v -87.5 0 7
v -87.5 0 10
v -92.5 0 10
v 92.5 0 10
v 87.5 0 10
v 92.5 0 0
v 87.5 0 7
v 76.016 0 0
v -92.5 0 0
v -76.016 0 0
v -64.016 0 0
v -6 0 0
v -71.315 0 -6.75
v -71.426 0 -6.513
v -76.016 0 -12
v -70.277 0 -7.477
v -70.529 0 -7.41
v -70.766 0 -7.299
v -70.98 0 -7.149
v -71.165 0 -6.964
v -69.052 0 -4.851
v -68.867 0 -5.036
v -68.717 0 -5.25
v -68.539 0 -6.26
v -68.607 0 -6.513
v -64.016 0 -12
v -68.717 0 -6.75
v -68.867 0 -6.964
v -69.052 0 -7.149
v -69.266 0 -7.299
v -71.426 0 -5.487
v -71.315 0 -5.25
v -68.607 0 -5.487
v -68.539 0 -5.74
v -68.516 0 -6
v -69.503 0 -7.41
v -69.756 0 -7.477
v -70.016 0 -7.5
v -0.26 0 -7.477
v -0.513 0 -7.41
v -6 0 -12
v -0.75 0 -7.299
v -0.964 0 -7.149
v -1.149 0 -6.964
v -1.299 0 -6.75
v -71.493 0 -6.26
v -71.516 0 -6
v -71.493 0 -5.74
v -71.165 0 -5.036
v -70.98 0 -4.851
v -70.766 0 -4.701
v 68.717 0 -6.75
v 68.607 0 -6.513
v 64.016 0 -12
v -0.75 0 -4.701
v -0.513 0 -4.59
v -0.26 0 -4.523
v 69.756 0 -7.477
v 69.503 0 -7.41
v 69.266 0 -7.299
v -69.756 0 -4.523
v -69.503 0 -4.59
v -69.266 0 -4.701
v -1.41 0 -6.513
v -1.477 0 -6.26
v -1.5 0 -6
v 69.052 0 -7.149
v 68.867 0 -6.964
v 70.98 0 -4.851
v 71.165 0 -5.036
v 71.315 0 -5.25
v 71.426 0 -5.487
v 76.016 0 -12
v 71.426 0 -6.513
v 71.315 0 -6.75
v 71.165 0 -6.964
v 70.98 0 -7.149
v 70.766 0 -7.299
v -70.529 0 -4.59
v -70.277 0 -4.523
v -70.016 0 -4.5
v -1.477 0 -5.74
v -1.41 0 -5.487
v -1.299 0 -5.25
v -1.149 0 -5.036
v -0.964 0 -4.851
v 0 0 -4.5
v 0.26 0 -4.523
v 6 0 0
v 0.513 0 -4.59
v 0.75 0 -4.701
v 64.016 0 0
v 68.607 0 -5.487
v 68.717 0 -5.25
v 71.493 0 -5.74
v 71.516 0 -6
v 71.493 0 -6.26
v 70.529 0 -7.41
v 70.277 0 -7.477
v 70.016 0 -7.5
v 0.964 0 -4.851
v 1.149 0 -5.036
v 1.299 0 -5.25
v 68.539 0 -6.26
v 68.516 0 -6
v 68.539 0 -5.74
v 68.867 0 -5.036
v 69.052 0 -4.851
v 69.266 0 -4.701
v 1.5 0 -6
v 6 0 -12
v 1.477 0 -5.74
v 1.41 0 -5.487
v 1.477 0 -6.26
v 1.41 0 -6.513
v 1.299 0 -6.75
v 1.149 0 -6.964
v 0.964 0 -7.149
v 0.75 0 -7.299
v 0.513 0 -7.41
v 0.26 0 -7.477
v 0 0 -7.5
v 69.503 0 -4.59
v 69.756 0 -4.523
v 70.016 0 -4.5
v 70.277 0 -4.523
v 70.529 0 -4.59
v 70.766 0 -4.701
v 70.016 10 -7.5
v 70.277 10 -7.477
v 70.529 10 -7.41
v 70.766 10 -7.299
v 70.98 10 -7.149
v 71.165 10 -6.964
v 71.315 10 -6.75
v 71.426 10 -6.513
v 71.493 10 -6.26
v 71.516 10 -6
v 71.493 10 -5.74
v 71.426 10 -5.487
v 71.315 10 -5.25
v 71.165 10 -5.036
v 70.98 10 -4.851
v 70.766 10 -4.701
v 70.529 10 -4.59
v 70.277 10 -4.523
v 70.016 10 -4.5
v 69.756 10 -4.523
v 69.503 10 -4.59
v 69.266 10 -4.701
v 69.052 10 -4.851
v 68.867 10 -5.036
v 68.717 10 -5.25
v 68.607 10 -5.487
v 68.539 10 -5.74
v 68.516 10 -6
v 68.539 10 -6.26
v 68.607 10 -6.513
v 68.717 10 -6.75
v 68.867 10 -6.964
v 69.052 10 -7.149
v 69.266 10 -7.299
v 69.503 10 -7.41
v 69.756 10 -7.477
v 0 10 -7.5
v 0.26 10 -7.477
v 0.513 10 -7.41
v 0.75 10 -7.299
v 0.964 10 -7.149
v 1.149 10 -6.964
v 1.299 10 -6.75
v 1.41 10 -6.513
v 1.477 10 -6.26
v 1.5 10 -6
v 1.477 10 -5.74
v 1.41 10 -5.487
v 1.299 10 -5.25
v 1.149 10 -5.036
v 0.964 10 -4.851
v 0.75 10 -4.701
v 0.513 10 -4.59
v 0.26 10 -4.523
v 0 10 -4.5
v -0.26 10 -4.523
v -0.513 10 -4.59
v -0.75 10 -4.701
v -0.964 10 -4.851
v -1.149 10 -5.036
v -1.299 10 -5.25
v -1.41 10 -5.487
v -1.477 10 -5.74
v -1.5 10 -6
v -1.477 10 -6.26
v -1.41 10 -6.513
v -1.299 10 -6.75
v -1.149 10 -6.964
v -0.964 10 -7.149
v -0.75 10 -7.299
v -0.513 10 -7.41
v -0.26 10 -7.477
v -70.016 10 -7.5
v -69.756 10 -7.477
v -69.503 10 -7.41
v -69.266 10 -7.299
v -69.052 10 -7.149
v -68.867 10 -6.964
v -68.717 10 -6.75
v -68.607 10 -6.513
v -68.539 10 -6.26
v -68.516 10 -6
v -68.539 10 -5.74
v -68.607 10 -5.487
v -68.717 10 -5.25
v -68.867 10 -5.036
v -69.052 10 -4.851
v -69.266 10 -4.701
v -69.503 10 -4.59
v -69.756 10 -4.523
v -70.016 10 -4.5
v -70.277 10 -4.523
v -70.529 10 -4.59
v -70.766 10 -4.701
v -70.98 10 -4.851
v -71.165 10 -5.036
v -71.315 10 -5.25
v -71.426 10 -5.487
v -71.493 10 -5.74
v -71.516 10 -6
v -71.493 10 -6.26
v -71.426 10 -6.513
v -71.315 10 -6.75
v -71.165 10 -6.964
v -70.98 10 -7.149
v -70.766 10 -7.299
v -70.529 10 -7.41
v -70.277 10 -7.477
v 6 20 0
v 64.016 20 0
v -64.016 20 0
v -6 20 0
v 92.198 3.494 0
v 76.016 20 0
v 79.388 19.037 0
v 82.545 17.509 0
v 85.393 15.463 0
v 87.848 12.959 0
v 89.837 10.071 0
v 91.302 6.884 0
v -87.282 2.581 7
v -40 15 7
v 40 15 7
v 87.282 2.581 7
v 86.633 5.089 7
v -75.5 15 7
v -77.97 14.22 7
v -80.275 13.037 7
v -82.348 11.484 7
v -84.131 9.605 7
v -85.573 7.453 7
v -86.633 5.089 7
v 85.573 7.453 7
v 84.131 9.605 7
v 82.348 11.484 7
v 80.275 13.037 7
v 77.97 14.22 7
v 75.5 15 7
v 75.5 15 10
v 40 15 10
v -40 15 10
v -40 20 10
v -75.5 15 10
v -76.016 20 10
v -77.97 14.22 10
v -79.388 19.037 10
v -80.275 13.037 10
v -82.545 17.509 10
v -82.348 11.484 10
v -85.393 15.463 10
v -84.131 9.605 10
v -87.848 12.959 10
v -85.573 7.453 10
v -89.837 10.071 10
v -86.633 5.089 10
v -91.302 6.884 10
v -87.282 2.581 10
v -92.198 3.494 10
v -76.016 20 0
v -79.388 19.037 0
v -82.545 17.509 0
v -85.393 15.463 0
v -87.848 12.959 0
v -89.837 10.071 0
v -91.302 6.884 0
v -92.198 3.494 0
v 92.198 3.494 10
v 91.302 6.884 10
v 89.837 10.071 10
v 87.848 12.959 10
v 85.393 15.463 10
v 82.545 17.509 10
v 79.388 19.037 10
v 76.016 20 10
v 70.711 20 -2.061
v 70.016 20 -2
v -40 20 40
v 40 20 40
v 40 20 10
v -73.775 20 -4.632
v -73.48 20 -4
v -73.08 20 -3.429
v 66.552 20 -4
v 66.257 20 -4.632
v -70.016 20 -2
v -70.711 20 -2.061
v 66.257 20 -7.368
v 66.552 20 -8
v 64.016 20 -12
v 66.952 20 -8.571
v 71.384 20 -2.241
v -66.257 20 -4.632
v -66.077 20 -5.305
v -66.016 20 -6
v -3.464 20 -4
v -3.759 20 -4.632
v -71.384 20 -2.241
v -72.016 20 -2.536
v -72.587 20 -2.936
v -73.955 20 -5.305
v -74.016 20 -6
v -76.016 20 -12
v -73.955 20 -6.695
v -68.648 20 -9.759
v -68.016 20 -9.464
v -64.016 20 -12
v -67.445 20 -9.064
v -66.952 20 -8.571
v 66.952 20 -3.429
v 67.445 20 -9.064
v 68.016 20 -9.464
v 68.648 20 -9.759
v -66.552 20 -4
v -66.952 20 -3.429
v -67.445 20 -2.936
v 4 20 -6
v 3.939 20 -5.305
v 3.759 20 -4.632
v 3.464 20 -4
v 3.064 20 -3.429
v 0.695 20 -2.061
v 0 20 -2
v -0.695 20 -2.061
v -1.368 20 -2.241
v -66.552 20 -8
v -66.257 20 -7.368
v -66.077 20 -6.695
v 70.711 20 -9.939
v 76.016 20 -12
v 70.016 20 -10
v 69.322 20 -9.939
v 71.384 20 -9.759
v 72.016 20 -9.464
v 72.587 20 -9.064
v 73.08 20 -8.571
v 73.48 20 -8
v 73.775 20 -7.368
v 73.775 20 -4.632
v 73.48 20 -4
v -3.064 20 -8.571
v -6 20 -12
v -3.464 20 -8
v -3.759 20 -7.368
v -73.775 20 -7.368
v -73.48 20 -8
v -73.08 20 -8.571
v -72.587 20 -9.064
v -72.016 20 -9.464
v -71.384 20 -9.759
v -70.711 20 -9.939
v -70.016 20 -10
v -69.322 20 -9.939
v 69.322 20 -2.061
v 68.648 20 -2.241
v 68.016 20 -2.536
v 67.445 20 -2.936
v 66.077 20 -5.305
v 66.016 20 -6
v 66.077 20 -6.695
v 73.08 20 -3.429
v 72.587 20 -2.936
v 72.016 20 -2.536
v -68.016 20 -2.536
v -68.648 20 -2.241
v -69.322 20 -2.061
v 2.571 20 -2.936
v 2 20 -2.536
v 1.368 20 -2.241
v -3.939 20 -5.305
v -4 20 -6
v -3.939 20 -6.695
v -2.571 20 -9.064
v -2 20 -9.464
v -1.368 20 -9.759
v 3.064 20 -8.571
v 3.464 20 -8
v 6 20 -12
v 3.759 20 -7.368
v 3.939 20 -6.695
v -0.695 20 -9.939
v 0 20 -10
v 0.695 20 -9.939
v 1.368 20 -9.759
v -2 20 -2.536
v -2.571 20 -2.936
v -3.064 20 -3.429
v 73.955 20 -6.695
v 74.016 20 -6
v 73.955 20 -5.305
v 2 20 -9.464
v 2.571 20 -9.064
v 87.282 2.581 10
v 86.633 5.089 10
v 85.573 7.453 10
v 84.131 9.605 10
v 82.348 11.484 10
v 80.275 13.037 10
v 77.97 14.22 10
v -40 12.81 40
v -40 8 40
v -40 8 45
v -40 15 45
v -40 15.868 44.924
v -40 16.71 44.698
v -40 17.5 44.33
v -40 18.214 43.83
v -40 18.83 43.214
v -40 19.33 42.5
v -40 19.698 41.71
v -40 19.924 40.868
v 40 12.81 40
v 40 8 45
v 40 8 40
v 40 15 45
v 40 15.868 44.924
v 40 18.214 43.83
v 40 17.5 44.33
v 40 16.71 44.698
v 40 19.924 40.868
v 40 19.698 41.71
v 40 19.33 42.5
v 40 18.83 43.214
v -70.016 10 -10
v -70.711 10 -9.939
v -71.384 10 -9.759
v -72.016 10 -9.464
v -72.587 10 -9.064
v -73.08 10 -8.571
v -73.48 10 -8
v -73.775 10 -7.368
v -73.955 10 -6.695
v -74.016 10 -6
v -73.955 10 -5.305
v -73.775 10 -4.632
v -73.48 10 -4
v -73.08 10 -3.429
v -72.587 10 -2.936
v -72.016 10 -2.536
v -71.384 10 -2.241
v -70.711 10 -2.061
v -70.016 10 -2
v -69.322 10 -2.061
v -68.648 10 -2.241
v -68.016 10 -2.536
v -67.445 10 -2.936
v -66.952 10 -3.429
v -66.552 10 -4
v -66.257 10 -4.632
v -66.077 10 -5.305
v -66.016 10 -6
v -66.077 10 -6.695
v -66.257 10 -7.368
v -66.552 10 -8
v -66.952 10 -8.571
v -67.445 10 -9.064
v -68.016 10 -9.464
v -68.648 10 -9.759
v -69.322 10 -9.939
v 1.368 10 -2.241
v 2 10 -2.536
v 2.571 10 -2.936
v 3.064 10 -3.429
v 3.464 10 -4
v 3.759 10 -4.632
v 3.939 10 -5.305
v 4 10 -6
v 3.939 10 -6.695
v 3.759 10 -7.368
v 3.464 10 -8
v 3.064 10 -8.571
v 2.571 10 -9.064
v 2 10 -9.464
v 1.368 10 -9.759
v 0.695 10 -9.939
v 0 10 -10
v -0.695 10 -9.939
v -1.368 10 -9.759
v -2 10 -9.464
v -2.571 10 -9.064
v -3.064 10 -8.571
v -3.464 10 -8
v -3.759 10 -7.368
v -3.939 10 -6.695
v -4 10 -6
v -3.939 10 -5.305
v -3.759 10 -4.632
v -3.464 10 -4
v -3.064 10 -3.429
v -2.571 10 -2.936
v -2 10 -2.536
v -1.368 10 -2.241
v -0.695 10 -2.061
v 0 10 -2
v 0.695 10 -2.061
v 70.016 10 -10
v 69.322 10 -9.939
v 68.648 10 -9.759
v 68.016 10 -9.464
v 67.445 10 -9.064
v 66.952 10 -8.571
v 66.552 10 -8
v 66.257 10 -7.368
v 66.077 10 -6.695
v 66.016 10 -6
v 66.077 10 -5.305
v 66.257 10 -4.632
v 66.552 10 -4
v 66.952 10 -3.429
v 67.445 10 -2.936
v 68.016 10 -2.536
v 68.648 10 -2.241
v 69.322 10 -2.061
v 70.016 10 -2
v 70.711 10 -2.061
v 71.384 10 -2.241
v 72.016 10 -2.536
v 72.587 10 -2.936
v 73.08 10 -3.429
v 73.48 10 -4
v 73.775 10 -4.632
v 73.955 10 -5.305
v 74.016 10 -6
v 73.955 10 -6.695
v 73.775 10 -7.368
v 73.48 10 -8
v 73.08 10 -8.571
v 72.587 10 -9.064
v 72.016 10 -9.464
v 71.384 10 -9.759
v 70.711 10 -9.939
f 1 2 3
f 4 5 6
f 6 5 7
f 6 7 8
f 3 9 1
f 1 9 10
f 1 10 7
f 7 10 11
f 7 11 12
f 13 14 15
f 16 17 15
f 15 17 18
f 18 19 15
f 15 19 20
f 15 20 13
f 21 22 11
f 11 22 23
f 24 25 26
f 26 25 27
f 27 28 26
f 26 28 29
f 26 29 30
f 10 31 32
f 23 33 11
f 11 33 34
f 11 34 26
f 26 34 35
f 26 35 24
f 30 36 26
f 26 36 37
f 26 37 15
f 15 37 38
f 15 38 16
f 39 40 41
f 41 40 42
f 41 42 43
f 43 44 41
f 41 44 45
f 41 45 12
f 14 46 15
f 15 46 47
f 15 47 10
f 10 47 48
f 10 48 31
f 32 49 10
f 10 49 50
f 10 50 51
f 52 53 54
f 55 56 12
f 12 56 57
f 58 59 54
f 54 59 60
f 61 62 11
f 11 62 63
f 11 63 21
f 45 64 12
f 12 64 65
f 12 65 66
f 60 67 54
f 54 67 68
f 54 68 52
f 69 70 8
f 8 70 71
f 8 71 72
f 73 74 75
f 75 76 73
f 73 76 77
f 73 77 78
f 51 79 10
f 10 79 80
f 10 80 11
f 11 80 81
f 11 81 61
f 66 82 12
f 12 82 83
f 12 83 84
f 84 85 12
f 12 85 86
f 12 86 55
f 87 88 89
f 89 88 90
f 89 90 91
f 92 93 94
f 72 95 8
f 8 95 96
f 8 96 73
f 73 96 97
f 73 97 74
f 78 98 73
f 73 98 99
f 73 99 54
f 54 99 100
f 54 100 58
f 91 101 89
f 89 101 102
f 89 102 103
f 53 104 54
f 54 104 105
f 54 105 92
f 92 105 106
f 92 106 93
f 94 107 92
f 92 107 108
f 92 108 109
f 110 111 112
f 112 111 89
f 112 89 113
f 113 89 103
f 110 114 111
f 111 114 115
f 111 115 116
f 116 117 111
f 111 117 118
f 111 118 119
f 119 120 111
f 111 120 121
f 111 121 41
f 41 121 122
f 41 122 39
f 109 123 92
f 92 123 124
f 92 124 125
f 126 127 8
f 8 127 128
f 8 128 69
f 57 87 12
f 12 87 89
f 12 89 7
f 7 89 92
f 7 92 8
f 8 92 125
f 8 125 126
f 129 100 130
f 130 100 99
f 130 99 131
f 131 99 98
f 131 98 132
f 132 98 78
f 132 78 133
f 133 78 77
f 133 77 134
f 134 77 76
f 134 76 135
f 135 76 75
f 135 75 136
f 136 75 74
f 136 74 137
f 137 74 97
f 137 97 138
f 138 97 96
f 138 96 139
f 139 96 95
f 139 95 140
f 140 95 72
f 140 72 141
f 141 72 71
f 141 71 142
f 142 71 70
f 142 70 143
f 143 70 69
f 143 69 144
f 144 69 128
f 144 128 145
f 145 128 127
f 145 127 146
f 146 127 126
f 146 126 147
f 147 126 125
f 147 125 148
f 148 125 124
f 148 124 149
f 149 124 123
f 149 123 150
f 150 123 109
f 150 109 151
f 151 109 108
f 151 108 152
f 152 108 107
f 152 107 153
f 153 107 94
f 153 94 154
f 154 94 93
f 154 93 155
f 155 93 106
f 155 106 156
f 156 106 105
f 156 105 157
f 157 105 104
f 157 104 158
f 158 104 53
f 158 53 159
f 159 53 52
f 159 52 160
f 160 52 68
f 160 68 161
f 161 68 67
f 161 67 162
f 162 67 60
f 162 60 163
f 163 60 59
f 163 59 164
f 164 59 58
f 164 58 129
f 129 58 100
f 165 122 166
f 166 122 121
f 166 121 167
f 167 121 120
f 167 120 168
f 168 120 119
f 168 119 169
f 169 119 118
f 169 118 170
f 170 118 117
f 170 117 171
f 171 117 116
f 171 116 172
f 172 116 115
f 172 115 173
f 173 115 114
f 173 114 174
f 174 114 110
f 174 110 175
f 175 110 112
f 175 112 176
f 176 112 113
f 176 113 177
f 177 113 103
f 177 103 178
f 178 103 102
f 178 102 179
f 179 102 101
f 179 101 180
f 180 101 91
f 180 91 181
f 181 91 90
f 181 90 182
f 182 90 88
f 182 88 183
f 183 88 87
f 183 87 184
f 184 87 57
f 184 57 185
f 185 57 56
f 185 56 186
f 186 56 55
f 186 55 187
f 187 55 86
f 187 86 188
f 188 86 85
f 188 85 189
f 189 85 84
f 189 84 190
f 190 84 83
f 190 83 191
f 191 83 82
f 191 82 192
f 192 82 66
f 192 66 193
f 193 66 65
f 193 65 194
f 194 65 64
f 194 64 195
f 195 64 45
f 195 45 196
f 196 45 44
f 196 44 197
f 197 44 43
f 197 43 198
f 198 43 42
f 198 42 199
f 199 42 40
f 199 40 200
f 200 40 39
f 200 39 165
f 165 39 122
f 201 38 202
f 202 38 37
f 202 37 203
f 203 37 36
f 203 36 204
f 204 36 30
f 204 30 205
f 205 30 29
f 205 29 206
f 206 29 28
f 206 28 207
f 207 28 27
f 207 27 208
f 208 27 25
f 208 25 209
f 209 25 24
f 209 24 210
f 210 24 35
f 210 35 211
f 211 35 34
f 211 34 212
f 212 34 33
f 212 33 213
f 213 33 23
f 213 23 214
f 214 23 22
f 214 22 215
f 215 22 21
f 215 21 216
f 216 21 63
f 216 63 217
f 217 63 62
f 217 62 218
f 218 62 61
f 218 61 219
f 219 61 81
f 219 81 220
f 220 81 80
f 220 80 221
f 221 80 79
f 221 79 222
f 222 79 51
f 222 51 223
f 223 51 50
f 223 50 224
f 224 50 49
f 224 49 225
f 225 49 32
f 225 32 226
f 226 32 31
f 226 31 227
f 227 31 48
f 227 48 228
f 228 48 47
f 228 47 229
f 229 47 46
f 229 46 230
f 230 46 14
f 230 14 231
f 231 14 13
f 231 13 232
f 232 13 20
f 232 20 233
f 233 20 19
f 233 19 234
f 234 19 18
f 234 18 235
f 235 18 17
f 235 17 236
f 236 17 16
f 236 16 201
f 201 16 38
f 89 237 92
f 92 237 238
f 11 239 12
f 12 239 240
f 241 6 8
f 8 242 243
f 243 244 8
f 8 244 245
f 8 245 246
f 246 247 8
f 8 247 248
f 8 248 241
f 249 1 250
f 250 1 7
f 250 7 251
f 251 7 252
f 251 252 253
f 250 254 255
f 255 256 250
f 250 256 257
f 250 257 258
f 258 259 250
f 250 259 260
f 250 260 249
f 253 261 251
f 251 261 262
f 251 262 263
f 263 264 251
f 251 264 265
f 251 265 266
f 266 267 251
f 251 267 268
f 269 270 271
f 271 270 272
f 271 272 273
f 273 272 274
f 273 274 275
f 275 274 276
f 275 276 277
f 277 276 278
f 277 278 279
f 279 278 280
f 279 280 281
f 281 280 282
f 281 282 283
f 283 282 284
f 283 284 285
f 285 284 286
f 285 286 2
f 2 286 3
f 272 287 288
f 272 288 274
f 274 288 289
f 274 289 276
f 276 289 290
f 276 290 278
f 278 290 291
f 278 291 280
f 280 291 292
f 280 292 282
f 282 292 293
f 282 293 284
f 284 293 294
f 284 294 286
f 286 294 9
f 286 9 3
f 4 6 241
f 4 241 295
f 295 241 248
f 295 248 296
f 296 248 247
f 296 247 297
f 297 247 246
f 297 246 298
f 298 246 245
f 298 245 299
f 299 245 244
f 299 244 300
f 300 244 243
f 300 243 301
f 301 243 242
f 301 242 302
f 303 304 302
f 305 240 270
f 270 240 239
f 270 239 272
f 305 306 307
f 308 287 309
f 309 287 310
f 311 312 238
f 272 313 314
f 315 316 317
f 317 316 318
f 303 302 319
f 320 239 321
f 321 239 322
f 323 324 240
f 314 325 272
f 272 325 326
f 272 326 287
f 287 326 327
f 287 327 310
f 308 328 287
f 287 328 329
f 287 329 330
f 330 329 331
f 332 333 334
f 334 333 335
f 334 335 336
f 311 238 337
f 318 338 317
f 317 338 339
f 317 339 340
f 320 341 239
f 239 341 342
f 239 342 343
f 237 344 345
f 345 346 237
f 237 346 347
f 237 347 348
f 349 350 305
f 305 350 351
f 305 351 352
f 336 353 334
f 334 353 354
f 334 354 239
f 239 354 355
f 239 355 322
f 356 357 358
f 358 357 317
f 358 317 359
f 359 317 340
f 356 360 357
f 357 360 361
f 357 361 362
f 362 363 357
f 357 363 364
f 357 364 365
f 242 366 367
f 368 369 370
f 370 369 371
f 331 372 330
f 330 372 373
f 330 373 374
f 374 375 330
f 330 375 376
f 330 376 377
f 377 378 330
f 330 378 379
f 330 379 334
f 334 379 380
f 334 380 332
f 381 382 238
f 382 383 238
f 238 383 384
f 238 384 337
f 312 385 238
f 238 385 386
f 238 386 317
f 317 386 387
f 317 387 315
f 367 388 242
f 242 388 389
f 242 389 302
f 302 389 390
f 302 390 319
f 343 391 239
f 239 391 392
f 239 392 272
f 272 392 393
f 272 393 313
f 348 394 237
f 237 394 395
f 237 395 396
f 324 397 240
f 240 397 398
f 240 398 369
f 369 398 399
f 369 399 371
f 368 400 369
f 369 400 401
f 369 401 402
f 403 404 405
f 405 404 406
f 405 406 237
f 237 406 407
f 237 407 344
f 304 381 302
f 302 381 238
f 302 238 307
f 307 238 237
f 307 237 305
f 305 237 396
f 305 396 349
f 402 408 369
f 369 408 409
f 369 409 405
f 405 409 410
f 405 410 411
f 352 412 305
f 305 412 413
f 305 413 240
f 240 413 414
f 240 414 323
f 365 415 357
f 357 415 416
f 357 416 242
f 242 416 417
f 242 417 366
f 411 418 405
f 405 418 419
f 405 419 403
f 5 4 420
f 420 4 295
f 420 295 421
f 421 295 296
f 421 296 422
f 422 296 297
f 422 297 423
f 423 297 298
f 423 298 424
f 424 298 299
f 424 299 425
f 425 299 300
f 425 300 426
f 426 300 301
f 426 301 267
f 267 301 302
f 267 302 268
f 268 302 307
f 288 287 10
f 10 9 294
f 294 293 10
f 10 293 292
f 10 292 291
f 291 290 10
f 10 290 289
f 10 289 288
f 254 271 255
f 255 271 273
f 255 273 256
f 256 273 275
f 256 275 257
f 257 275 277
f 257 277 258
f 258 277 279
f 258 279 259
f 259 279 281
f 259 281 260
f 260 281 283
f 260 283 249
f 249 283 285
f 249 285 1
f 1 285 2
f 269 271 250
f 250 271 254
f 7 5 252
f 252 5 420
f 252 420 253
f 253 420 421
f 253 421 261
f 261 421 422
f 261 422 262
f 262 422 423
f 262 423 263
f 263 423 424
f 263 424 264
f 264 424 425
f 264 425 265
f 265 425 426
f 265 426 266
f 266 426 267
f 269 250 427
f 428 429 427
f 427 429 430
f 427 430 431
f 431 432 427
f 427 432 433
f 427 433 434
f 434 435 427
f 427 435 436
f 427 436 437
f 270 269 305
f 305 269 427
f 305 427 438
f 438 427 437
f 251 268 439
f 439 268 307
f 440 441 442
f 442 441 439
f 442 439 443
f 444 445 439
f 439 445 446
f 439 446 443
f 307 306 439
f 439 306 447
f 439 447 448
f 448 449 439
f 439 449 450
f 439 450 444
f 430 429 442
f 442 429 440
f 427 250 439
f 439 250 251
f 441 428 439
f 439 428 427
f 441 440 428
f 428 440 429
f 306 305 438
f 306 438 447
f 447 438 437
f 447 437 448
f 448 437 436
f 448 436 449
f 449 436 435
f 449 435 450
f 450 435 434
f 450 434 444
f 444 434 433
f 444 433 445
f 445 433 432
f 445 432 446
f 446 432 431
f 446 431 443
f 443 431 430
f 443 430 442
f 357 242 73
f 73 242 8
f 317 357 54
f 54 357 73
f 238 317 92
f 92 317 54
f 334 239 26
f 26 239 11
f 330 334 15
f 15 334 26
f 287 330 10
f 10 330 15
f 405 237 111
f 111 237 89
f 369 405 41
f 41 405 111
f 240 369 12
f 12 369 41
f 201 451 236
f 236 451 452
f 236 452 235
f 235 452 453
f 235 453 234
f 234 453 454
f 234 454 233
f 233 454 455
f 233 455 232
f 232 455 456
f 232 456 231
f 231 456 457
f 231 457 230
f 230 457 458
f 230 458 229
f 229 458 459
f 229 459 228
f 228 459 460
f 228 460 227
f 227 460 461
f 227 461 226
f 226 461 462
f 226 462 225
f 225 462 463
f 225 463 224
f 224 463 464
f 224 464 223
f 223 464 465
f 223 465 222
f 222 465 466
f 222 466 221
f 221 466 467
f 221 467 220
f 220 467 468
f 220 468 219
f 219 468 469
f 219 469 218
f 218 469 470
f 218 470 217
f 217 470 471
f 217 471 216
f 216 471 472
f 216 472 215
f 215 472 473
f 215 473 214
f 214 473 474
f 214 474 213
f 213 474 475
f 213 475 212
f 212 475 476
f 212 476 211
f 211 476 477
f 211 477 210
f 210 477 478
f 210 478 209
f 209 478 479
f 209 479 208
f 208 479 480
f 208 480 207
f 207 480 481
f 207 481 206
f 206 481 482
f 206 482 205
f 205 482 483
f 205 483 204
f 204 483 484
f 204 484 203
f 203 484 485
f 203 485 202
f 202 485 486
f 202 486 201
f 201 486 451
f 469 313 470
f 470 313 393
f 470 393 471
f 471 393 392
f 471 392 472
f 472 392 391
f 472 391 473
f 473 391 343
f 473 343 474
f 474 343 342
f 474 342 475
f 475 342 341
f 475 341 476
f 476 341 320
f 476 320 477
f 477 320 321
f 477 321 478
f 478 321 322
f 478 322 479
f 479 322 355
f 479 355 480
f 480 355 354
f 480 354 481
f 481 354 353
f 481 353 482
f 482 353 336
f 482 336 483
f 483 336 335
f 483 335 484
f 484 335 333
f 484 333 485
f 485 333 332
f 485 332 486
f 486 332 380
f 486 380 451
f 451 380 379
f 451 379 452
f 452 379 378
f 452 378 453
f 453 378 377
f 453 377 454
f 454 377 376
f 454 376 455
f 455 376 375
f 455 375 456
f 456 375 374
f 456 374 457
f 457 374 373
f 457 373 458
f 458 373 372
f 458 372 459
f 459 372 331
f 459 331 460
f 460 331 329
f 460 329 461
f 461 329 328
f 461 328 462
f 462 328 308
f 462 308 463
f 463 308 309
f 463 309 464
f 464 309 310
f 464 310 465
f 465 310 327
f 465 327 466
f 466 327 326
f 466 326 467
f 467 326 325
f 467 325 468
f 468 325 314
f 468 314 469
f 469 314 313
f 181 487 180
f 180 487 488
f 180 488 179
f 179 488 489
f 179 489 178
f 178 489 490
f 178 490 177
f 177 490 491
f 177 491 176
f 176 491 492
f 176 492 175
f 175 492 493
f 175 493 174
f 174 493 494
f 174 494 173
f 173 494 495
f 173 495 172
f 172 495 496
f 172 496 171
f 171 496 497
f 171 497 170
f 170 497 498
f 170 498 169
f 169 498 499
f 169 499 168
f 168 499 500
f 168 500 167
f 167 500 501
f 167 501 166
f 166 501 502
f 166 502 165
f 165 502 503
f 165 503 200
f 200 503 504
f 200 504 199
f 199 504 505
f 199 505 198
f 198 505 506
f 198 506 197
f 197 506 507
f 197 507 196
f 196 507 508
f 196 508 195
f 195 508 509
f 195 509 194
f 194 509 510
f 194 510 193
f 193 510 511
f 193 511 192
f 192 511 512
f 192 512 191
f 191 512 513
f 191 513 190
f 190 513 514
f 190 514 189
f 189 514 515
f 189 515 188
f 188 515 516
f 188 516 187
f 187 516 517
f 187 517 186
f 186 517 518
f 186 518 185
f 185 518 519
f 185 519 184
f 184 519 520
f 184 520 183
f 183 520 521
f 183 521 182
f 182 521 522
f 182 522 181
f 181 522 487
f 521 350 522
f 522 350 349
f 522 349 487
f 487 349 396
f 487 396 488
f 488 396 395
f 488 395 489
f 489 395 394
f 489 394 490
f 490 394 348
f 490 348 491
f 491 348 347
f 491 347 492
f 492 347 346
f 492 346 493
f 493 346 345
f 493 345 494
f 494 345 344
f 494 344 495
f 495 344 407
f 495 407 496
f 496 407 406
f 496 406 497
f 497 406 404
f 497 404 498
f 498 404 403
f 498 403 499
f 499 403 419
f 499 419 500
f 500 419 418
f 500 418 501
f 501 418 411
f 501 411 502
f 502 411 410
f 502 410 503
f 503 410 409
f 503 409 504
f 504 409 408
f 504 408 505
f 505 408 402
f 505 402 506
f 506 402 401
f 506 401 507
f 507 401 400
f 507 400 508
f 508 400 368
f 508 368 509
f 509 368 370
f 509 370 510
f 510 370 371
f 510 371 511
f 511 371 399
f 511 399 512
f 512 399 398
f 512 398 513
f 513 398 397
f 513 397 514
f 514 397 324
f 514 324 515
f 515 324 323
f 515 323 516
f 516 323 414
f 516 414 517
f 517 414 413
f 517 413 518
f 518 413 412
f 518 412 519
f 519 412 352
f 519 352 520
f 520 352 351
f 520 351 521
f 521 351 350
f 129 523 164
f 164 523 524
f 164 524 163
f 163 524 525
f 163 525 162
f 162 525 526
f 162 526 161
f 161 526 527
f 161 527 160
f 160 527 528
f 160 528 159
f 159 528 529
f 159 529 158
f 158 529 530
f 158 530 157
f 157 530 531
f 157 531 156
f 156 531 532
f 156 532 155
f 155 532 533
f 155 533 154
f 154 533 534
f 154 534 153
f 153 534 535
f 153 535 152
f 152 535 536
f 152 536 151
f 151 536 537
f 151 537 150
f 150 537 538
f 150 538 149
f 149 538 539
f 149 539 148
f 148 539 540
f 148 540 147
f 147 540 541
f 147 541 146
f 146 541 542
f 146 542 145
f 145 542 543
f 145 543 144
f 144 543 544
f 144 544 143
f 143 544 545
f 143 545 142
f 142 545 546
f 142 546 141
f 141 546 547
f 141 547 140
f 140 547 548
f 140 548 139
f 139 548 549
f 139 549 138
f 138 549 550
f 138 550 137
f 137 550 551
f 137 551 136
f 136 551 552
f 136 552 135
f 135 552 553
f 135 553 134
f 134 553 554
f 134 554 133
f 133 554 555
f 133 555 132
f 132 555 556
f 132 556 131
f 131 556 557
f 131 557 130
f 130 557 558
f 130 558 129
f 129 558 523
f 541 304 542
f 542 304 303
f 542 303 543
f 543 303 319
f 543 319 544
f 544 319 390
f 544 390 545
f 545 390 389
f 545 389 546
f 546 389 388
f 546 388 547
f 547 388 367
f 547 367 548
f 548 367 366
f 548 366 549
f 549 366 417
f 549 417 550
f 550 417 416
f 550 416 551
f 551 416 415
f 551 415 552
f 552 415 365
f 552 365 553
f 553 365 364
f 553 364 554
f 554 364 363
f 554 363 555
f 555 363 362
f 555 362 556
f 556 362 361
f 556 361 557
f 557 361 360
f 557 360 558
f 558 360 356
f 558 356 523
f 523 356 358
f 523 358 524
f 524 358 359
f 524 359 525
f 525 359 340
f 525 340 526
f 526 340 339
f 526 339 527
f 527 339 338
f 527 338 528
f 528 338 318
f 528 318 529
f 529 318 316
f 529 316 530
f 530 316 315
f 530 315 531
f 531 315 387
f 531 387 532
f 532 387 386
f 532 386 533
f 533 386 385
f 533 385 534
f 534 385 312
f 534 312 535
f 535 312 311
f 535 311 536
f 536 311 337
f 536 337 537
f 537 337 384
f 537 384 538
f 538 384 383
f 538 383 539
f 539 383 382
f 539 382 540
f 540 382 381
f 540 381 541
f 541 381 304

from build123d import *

# Parameters (mm, degrees)
ESTRUSIONE_ESTRUSIONE1_DEPTH  = 10
TAGLIO_ESTRUSIONE1_DEPTH      = 3
SCHIZZO4_W                    = 80
SCHIZZO4_H                    = 5
ESTRUSIONE_ESTRUSIONE2_DEPTH  = 35
ESTRUSIONE_ESTRUSIONE4_DEPTH  = 80
SCHIZZO7_W                    = 80
SCHIZZO7_H                    = 5
ESTRUSIONE_ESTRUSIONE5_DEPTH  = 7
TAGLIO_ESTRUSIONE2_REACH      = 112.369
SCHIZZO8_R                    = 1.5
RACCORDO1_R                   = 5
RACCORDO2_R                   = 5
TAGLIO_ESTRUSIONE3_DEPTH      = 111.368700273
TAGLIO_ESTRUSIONE3_DEPTH_BACK = 10
SCHIZZO11_R                   = 4
TAGLIO_ESTRUSIONE4_DEPTH      = 3
SCHIZZO12_W                   = 12
SCHIZZO12_H                   = 12
ESTRUSIONE_ESTRUSIONE6_DEPTH  = 40
SCHIZZO13_R                   = 1.5
TAGLIO_ESTRUSIONE5_DEPTH      = 111.368700273
SCHIZZO14_R                   = 4
TAGLIO_ESTRUSIONE6_DEPTH      = 10


with BuildPart() as part:
    # Schizzo1 → Estrusione-Estrusione1 (new body)
    with BuildSketch(Plane.XY):
        with BuildLine():
            Line((-76.016095604, 20), (76.016095604, 20))
            ThreePointArc((76.016095604, 20), (92.5, 0), (76.016095604, -20))
            Line((76.016095604, -20), (-76.016095604, -20))
            ThreePointArc((-76.016095604, -20), (-92.5, 0), (-76.016095604, 20))
        make_face()
    extrude(amount=ESTRUSIONE_ESTRUSIONE1_DEPTH)

    # Schizzo3 → Taglio-Estrusione1 (cut)
    with BuildSketch(Plane.XY.offset(10)):
        with BuildLine():
            Line((-75.5, -15), (75.5, -15))
            ThreePointArc((75.5, -15), (87.5, 0), (75.5, 15))
            Line((75.5, 15), (-75.5, 15))
            ThreePointArc((-75.5, 15), (-87.5, 0), (-75.5, -15))
        make_face()
    extrude(amount=-TAGLIO_ESTRUSIONE1_DEPTH, mode=Mode.SUBTRACT)

    # Schizzo4 → Estrusione-Estrusione2 (add)
    with BuildSketch(Plane.XY.offset(10)):
        with Locations((0, -17.5)):
            Rectangle(SCHIZZO4_W, SCHIZZO4_H)
    estrusione_estrusione2 = extrude(amount=ESTRUSIONE_ESTRUSIONE2_DEPTH)

    # Schizzo6 → Estrusione-Estrusione4 (add)
    with BuildSketch(Plane(origin=(40, 0, 0), x_dir=(0, 0, -1), z_dir=(1, 0, 0))):
        Polygon((-40, -15), (-40, -12.81), (-7, -15), align=None)
    estrusione_estrusione4 = extrude(amount=-ESTRUSIONE_ESTRUSIONE4_DEPTH)

    # Schizzo7 → Estrusione-Estrusione5 (add)
    with BuildSketch(Plane(origin=(0, -15, 0), x_dir=(1, 0, 0), z_dir=(0, 1, 0))):
        with Locations((0, -42.5)):
            Rectangle(SCHIZZO7_W, SCHIZZO7_H)
    estrusione_estrusione5 = extrude(amount=ESTRUSIONE_ESTRUSIONE5_DEPTH)

    # Taglio-Estrusione2: up to this plane
    taglio_estrusione2_end = Plane(origin=(-40, -12.81, 40), z_dir=(1.4576135341627736e-15, 0.9978051809344605, -0.0662179801892863))
    # Schizzo8 → Taglio-Estrusione2 (cut, up to the surface)
    with BuildSketch(Plane.XZ.offset(20), mode=Mode.PRIVATE) as taglio_estrusione2_sk1:
        with Locations(Location((-30, 13, 0), (0, 0, 270))):
            Circle(SCHIZZO8_R)
    taglio_estrusione2_tool1 = split(extrude(taglio_estrusione2_sk1.sketch, amount=-TAGLIO_ESTRUSIONE2_REACH, mode=Mode.PRIVATE), bisect_by=taglio_estrusione2_end, keep=Keep.BOTH, mode=Mode.PRIVATE)
    add(taglio_estrusione2_tool1.solids().sort_by_distance((-30, -20, 13))[0], mode=Mode.SUBTRACT)
    # Schizzo8 → Taglio-Estrusione2 (cut, up to the surface)
    with BuildSketch(Plane.XZ.offset(20), mode=Mode.PRIVATE) as taglio_estrusione2_sk2:
        with Locations(Location((-30, 32, 0), (0, 0, 270))):
            Circle(SCHIZZO8_R)
    taglio_estrusione2_tool2 = split(extrude(taglio_estrusione2_sk2.sketch, amount=-TAGLIO_ESTRUSIONE2_REACH, mode=Mode.PRIVATE), bisect_by=taglio_estrusione2_end, keep=Keep.BOTH, mode=Mode.PRIVATE)
    add(taglio_estrusione2_tool2.solids().sort_by_distance((-30, -20, 32))[0], mode=Mode.SUBTRACT)
    # Schizzo8 → Taglio-Estrusione2 (cut, up to the surface)
    with BuildSketch(Plane.XZ.offset(20), mode=Mode.PRIVATE) as taglio_estrusione2_sk3:
        with Locations(Location((30, 13, 0), (0, 0, 270))):
            Circle(SCHIZZO8_R)
    taglio_estrusione2_tool3 = split(extrude(taglio_estrusione2_sk3.sketch, amount=-TAGLIO_ESTRUSIONE2_REACH, mode=Mode.PRIVATE), bisect_by=taglio_estrusione2_end, keep=Keep.BOTH, mode=Mode.PRIVATE)
    add(taglio_estrusione2_tool3.solids().sort_by_distance((30, -20, 13))[0], mode=Mode.SUBTRACT)
    # Schizzo8 → Taglio-Estrusione2 (cut, up to the surface)
    with BuildSketch(Plane.XZ.offset(20), mode=Mode.PRIVATE) as taglio_estrusione2_sk4:
        with Locations(Location((30, 32, 0), (0, 0, 270))):
            Circle(SCHIZZO8_R)
    taglio_estrusione2_tool4 = split(extrude(taglio_estrusione2_sk4.sketch, amount=-TAGLIO_ESTRUSIONE2_REACH, mode=Mode.PRIVATE), bisect_by=taglio_estrusione2_end, keep=Keep.BOTH, mode=Mode.PRIVATE)
    add(taglio_estrusione2_tool4.solids().sort_by_distance((30, -20, 32))[0], mode=Mode.SUBTRACT)

    # Specchia1: Estrusione-Estrusione2, Estrusione-Estrusione4, Estrusione-Estrusione5 across plane
    add(estrusione_estrusione2.mirror(Plane.ZX))
    add(estrusione_estrusione4.mirror(Plane.ZX))
    add(estrusione_estrusione5.mirror(Plane.ZX))

    # Raccordo1
    raccordo1_edges = [part.edges().sort_by_distance(p)[0] for p in [
        (0, -20, 45),
    ]]
    fillet(raccordo1_edges, radius=RACCORDO1_R)

    # Raccordo2
    raccordo2_edges = [part.edges().sort_by_distance(p)[0] for p in [
        (0, 20, 45),
    ]]
    fillet(raccordo2_edges, radius=RACCORDO2_R)

    # Schizzo9 → Taglio-Estrusione3 (cut, two sides)
    with BuildSketch(Plane.XZ.offset(20)) as taglio_estrusione3_sk:
        Polygon((-4, 11), (-4, 3), (4, 3), (4, 11), (10, 11), (10, 31), (-10, 31), (-10, 11), align=None)
    extrude(amount=TAGLIO_ESTRUSIONE3_DEPTH, mode=Mode.SUBTRACT)
    extrude(taglio_estrusione3_sk.sketch, amount=-TAGLIO_ESTRUSIONE3_DEPTH_BACK, mode=Mode.SUBTRACT)

    # Schizzo11 → Taglio-Estrusione4 (cut)
    with BuildSketch(Plane(origin=(0, -15.396736192, 1.021783402), x_dir=(1, 0, 0), z_dir=(1.4576135341627738e-15, 0.9978051809344605, -0.06621798018928632))):
        with Locations(Location((-30, -12.004564445, 0), (0, 0, 270))):
            Circle(SCHIZZO11_R)
        with Locations(Location((-30, -31.046357736, 0), (0, 0, 270))):
            Circle(SCHIZZO11_R)
        with Locations(Location((30, -31.046357736, 0), (0, 0, 270))):
            Circle(SCHIZZO11_R)
        with Locations(Location((30, -12.004564445, 0), (0, 0, 270))):
            Circle(SCHIZZO11_R)
    extrude(amount=-TAGLIO_ESTRUSIONE4_DEPTH, mode=Mode.SUBTRACT)

    # Schizzo12 → Estrusione-Estrusione6 (add)
    with BuildSketch(Plane.XZ.offset(20)):
        with Locations((70.016095604, -6)):
            Rectangle(SCHIZZO12_W, SCHIZZO12_H)
        with Locations((-70.016095604, -6)):
            Rectangle(SCHIZZO12_W, SCHIZZO12_H)
        with Locations((0, -6)):
            Rectangle(SCHIZZO12_W, SCHIZZO12_H)
    extrude(amount=-ESTRUSIONE_ESTRUSIONE6_DEPTH)

    # Schizzo13 → Taglio-Estrusione5 (cut, through all)
    with BuildSketch(Plane.XZ.offset(20)):
        with Locations(Location((-70.016095604, -6, 0), (0, 0, 270))):
            Circle(SCHIZZO13_R)
        with Locations(Location((0, -6, 0), (0, 0, 270))):
            Circle(SCHIZZO13_R)
        with Locations(Location((70.016095604, -6, 0), (0, 0, 270))):
            Circle(SCHIZZO13_R)
    extrude(amount=-TAGLIO_ESTRUSIONE5_DEPTH, mode=Mode.SUBTRACT)

    # Schizzo14 → Taglio-Estrusione6 (cut)
    with BuildSketch(Plane.XZ.offset(20)):
        with Locations(Location((-70.016095604, -6, 0), (0, 0, 270))):
            Circle(SCHIZZO14_R)
        with Locations(Location((0, -6, 0), (0, 0, 270))):
            Circle(SCHIZZO14_R)
        with Locations(Location((70.016095604, -6, 0), (0, 0, 270))):
            Circle(SCHIZZO14_R)
    taglio_estrusione6 = extrude(amount=-TAGLIO_ESTRUSIONE6_DEPTH, mode=Mode.SUBTRACT)

    # Specchia2: Taglio-Estrusione6 across plane
    add(taglio_estrusione6.mirror(Plane.ZX), mode=Mode.SUBTRACT)

    # TaglioSuperficie1
    split(bisect_by=Plane(origin=(0, 0, 0), x_dir=(1, 0, 0), z_dir=(0, 1, 0)), keep=Keep.TOP)


solid = part.part
